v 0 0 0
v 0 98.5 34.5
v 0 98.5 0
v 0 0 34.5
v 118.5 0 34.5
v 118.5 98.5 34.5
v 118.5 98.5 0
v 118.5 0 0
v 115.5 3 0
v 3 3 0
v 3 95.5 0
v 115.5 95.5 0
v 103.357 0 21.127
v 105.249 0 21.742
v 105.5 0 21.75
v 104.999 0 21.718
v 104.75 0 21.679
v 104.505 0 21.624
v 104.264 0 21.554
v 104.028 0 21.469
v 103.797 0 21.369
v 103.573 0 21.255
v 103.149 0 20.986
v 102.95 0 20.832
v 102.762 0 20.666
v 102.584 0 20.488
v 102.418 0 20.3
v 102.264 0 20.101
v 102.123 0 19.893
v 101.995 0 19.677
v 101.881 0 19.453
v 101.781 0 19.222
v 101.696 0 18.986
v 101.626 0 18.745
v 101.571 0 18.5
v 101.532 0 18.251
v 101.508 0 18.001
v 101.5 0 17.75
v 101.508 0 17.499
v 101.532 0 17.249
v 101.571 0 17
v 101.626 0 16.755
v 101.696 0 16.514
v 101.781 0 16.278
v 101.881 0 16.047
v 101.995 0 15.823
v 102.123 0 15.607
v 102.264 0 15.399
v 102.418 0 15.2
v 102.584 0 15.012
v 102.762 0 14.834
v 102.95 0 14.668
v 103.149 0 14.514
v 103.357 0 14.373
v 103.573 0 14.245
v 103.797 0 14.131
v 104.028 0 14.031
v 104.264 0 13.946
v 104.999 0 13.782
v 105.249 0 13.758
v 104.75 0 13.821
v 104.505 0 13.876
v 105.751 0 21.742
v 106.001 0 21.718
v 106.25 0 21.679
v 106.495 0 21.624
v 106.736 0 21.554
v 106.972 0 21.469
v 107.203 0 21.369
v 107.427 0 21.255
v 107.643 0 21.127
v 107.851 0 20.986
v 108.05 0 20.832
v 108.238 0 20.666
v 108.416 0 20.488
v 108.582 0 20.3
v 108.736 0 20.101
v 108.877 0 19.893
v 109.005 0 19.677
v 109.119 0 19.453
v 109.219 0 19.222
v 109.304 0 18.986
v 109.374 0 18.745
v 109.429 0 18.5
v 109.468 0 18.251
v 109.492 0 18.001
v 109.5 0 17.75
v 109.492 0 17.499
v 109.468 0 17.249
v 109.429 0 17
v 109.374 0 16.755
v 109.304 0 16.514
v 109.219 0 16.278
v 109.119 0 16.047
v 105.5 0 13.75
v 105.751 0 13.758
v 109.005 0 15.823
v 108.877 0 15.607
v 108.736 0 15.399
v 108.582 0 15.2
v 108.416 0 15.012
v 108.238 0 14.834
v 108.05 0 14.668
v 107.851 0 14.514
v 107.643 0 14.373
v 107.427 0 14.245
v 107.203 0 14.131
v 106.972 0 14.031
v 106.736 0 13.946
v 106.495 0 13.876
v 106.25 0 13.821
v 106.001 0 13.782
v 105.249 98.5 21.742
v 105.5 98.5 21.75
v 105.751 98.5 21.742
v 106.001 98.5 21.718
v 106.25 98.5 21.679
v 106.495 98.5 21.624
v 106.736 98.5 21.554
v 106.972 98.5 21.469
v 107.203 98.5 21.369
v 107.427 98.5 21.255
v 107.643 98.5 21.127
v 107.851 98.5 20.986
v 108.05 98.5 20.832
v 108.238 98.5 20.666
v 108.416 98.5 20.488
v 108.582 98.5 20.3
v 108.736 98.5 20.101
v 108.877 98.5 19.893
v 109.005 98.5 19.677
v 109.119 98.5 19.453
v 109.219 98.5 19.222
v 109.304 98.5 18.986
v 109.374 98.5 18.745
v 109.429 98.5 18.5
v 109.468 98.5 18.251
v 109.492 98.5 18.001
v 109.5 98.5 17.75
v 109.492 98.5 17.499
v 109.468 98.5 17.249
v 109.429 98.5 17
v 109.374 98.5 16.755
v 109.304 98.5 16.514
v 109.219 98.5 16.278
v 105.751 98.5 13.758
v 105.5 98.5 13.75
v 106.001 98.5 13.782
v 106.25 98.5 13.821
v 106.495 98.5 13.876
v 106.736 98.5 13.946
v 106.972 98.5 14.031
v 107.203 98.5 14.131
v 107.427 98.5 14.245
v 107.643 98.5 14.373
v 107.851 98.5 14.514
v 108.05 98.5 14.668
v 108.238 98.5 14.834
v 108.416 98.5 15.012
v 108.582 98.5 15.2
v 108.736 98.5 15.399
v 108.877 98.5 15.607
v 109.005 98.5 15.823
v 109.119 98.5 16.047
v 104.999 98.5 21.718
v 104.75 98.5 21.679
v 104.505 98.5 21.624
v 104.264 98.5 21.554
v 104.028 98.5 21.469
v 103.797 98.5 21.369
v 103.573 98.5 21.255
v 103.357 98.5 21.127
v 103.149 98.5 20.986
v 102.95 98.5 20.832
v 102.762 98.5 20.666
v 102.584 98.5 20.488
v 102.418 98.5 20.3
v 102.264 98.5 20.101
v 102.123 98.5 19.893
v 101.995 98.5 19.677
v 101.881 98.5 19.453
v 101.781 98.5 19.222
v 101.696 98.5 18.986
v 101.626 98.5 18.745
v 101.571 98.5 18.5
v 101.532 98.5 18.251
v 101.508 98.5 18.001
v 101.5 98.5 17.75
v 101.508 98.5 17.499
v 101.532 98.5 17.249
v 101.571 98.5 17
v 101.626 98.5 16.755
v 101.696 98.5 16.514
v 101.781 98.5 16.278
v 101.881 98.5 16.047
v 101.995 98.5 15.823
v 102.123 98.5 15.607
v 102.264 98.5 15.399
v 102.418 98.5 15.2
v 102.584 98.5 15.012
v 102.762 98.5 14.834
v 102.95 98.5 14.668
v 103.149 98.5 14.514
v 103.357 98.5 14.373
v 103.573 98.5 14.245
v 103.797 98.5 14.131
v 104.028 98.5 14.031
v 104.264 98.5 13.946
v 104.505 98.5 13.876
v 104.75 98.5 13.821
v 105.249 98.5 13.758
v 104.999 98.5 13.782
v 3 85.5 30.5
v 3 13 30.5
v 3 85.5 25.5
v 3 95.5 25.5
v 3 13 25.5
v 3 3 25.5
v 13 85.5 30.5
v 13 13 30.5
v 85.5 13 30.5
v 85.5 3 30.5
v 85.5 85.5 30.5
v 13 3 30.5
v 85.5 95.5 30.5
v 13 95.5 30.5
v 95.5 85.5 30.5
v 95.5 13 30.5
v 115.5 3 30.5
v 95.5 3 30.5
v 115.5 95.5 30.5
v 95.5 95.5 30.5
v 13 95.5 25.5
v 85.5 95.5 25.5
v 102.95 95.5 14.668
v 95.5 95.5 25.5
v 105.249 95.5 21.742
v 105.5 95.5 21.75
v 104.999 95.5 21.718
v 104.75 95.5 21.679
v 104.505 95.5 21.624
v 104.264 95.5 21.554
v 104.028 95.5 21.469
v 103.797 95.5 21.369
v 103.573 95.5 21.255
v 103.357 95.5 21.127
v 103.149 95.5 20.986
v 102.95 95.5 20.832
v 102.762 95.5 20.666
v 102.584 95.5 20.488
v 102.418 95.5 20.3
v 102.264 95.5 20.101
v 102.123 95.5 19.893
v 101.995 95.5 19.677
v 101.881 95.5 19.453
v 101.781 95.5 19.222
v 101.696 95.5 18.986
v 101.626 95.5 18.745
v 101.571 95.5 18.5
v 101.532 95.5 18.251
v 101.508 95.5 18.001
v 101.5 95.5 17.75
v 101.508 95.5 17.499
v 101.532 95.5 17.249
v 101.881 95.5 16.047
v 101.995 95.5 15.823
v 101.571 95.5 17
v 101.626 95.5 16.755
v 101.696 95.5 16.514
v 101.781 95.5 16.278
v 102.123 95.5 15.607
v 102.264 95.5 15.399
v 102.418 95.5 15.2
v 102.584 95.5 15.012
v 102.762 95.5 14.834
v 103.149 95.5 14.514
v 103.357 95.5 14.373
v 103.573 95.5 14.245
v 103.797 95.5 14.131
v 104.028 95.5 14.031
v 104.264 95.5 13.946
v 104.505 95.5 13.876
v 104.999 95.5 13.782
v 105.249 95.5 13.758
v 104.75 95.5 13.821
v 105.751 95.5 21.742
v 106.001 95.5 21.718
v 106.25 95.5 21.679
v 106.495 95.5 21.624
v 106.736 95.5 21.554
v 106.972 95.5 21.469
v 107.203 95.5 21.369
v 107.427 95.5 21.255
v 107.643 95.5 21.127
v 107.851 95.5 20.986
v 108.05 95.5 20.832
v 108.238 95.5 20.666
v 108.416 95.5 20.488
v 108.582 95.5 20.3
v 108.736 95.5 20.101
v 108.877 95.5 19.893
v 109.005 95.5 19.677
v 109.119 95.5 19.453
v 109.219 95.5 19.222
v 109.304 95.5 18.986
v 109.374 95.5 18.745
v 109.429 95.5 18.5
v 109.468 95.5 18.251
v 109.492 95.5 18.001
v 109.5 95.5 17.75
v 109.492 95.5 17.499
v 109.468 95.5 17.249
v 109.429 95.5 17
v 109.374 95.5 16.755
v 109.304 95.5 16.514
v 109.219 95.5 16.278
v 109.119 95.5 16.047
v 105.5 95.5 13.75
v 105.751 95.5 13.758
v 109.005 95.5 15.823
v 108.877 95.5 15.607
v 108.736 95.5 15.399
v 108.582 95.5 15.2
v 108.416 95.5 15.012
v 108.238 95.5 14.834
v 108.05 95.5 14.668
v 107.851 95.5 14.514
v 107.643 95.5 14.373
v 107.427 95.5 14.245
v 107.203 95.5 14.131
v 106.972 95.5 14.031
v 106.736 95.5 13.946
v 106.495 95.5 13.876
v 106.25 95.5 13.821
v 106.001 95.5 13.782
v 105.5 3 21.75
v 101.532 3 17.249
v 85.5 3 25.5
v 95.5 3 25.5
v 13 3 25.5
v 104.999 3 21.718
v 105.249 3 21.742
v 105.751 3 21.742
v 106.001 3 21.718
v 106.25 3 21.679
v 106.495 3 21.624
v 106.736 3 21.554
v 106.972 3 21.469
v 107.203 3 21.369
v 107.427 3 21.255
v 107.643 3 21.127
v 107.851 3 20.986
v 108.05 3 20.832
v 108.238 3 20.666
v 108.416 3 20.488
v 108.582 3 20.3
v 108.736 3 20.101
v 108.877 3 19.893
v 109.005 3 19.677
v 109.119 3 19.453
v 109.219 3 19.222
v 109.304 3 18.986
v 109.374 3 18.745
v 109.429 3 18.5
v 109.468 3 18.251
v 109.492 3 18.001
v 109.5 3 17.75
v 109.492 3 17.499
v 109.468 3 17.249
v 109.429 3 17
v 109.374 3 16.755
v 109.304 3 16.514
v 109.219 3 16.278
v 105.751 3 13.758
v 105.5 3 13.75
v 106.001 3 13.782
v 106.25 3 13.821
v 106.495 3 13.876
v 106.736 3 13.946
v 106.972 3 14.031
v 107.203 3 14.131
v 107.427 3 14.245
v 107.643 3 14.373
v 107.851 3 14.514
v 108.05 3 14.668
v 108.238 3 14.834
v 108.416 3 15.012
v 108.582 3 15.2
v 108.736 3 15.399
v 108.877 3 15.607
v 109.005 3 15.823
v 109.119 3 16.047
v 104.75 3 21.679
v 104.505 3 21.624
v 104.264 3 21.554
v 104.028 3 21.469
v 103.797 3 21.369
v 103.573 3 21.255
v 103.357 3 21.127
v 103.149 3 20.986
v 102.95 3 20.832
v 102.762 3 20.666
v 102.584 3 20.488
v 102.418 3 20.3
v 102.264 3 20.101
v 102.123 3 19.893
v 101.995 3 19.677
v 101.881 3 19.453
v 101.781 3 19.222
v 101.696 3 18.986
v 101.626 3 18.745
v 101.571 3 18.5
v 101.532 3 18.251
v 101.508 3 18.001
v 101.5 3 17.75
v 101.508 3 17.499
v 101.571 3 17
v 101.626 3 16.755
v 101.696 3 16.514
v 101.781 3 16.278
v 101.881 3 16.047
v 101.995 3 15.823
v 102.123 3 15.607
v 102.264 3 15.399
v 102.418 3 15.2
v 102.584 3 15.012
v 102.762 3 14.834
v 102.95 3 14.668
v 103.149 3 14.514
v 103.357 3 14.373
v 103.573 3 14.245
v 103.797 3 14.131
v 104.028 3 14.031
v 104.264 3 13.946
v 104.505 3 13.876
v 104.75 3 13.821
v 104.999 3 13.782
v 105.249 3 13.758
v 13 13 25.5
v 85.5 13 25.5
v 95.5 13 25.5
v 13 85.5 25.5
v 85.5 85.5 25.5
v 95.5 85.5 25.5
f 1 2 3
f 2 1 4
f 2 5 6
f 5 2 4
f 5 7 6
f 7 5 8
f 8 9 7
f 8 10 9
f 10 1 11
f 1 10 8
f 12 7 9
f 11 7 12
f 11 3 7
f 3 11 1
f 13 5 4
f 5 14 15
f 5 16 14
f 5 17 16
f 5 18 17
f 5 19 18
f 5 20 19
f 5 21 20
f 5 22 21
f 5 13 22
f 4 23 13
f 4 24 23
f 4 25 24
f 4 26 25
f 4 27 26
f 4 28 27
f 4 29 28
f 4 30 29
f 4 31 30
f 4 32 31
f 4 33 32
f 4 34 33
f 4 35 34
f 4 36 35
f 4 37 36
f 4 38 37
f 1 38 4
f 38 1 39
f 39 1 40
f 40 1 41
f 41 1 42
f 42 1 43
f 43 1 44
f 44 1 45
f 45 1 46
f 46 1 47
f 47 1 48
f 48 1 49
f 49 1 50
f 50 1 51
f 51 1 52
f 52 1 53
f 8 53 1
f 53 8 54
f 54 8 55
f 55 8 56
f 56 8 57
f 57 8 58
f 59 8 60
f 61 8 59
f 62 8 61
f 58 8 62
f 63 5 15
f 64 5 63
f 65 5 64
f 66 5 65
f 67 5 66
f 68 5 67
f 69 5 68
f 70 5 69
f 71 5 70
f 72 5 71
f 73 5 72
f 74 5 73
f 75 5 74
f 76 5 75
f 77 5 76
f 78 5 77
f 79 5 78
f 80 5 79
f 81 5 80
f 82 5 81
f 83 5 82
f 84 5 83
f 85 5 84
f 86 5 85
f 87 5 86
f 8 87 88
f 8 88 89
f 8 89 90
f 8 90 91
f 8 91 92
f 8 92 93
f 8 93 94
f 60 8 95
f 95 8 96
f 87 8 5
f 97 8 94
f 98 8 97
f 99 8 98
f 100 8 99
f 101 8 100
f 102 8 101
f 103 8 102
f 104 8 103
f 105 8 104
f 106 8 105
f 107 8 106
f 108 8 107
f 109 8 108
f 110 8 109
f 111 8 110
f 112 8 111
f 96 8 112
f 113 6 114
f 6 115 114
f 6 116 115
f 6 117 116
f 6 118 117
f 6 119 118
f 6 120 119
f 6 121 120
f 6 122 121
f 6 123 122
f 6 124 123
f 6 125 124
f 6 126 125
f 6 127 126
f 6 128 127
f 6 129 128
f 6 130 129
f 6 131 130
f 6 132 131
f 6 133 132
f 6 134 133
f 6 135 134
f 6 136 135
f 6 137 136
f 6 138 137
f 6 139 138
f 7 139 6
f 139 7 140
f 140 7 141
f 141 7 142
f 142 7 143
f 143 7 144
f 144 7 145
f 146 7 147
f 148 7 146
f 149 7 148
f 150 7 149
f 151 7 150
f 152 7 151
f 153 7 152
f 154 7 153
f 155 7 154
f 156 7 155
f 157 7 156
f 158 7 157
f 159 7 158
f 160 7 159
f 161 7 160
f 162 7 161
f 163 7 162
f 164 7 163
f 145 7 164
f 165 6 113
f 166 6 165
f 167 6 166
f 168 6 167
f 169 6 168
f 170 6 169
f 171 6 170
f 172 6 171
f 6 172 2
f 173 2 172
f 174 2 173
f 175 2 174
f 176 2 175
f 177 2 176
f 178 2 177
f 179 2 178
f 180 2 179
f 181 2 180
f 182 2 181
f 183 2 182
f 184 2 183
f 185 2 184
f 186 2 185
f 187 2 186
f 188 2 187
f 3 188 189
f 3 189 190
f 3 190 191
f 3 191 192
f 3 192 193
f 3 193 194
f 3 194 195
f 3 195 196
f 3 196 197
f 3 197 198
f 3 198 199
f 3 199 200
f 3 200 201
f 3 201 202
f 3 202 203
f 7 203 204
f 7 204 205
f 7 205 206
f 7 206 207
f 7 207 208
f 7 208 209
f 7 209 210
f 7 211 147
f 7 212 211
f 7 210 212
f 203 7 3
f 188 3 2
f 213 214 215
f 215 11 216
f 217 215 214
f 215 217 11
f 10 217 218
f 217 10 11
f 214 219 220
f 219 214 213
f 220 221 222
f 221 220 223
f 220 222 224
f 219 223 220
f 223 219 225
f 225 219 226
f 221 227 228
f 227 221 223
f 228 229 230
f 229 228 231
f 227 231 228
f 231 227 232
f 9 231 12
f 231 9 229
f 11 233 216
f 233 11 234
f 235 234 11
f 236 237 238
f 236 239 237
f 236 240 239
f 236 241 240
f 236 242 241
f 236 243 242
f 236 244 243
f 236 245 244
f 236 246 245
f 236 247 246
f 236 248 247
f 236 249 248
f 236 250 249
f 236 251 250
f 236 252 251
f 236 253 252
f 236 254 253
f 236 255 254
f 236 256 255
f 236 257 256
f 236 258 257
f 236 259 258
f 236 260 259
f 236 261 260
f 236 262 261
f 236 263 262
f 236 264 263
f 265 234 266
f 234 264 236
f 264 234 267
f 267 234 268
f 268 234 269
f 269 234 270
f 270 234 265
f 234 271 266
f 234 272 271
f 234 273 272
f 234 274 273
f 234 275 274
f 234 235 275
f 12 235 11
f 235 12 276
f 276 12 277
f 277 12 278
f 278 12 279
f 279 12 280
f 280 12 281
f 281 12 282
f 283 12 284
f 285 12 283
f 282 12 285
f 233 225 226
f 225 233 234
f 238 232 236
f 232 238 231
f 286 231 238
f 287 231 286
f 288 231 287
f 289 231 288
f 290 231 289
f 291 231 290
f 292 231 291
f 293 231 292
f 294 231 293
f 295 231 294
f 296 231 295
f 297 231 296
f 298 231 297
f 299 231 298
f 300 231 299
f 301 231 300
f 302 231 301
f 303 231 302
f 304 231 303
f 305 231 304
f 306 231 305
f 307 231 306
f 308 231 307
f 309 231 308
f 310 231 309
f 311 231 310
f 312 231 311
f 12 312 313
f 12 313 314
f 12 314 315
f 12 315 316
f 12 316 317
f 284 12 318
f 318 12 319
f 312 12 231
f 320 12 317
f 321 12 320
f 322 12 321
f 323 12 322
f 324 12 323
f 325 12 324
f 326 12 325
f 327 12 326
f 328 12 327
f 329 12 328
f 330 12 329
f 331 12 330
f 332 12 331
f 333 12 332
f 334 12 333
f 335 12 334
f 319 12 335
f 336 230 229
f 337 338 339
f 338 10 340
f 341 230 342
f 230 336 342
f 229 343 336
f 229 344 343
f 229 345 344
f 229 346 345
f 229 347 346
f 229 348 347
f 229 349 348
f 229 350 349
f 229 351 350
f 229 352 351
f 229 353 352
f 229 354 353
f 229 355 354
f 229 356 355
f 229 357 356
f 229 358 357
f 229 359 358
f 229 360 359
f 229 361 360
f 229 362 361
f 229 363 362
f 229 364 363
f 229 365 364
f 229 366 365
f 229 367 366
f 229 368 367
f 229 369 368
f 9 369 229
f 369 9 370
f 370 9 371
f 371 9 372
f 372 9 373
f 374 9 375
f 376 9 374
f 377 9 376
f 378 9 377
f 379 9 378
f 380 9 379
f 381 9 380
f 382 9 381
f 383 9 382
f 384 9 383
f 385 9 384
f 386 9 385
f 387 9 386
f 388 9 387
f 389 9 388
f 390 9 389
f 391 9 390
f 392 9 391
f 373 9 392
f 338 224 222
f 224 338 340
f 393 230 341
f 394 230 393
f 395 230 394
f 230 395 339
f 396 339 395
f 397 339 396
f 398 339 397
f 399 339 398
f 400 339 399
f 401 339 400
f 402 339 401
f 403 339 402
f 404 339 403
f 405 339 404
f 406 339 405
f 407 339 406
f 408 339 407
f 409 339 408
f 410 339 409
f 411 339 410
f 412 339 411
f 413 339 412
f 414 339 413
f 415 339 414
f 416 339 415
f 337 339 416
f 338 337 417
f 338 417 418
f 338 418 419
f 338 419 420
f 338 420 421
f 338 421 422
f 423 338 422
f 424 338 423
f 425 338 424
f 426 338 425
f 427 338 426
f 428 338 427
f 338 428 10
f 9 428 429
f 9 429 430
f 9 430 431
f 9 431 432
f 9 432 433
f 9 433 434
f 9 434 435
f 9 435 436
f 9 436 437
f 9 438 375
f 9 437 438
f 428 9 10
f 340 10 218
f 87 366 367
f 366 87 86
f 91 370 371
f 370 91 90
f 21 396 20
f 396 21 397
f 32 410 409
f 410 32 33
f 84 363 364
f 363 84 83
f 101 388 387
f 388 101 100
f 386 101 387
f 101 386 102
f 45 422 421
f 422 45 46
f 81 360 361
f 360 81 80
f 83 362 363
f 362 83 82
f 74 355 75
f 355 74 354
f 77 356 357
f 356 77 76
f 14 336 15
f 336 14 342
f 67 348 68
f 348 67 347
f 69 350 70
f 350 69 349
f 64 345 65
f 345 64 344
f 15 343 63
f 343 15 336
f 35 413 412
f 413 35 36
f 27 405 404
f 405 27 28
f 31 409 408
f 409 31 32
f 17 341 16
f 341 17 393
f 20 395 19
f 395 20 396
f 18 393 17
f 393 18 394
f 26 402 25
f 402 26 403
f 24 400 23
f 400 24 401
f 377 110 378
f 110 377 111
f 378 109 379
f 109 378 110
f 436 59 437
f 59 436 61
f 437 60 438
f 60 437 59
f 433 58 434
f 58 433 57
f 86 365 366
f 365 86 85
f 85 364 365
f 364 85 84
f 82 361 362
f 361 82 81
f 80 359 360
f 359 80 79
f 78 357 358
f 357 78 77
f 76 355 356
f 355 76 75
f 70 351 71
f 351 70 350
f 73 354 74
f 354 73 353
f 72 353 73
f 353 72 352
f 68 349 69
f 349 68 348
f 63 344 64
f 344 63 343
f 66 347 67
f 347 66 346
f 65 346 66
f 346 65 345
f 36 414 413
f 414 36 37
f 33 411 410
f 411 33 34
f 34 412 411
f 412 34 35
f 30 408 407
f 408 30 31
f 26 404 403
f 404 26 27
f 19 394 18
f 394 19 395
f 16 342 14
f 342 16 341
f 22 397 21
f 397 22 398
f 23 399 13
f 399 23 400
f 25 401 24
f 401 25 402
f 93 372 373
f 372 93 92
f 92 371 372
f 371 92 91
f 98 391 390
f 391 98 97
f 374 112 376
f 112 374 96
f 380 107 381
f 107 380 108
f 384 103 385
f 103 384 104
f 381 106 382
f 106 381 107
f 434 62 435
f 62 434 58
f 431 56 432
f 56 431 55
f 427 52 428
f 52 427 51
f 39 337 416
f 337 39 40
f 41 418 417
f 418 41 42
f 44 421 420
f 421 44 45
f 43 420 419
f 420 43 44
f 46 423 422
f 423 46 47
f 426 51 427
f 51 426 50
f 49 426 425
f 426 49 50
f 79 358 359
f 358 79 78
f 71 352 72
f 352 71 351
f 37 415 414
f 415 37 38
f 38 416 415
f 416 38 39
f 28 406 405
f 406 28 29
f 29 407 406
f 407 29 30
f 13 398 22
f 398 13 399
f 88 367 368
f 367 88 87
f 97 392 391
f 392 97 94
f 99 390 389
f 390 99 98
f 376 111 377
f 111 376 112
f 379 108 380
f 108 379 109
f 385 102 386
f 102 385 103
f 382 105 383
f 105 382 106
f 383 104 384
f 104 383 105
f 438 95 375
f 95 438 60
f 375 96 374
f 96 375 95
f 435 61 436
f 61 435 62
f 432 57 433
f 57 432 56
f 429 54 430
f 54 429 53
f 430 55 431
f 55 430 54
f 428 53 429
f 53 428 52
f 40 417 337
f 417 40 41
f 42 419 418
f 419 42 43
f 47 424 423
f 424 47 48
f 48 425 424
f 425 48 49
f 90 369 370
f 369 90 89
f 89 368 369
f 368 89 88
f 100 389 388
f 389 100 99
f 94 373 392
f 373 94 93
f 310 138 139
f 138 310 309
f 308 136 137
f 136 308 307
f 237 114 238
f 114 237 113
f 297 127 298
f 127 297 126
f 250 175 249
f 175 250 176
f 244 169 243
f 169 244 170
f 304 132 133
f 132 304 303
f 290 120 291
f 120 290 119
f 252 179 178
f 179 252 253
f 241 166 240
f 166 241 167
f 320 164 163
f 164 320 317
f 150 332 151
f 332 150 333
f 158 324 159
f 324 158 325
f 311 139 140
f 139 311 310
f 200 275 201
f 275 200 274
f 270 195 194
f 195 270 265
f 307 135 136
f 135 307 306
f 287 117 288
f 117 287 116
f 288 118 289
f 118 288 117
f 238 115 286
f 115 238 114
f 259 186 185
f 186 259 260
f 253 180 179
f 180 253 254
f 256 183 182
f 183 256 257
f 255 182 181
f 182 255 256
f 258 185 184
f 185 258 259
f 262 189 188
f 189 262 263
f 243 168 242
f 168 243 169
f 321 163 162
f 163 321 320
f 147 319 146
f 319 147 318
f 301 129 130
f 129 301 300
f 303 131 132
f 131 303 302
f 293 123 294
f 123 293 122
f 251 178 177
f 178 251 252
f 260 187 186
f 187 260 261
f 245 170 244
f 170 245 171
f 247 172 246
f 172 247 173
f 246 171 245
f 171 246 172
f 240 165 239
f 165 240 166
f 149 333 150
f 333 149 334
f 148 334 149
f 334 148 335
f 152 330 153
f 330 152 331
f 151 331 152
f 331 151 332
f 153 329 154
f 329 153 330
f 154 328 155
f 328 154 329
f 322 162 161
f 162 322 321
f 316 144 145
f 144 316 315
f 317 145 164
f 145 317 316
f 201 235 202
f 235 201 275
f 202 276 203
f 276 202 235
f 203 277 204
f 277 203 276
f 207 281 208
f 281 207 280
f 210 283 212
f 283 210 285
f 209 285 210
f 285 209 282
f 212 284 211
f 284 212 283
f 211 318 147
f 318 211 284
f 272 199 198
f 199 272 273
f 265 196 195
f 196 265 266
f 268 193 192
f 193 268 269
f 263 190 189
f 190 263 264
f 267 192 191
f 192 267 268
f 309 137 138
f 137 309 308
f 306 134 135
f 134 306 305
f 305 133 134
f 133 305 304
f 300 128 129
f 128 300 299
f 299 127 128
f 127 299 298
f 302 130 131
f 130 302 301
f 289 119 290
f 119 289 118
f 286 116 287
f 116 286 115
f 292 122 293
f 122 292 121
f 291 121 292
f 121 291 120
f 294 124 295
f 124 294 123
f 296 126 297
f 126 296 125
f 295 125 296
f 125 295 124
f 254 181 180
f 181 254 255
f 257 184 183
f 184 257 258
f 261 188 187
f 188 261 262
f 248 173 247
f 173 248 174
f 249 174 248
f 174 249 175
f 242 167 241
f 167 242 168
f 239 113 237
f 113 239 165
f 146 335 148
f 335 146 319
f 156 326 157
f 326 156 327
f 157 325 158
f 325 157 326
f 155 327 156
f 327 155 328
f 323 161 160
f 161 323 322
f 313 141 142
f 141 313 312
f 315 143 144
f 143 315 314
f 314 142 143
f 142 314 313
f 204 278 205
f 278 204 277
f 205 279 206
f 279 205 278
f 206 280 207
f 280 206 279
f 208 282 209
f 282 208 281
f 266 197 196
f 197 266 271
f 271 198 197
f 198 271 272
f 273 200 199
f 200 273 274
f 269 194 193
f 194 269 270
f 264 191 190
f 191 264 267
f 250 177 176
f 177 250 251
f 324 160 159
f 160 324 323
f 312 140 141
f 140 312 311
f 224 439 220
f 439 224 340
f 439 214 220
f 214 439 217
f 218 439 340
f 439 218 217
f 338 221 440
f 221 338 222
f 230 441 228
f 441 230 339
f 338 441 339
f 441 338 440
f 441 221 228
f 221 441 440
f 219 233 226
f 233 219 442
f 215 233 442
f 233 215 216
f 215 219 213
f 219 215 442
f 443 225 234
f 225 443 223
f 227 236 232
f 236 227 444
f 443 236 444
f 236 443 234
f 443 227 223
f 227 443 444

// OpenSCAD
// Andre Betz
// github@AndreBetz.de
// Magnetic stirrer case
// Zwieselbrau.de

WandD           =  3;
LuefterH        = 25.5;
LuefterB        = 92.5;
LuefterT        = 92.5;
MagnetH         =  6;
PotiB           = 20;
DistHolderBT    = 10;
ConnDC_D1       =  8;
ConnDC_D2       = 13;
ConnP_D1        =  8;
ConnP_D2        = 13;

$fn=100;

difference() {
    cube([  LuefterB+PotiB+2*WandD,
            LuefterT+2*WandD,
            LuefterH+MagnetH+WandD ],
            center = false);
    translate([WandD,WandD,-1])
        cube([  LuefterB+PotiB,
                LuefterT,
                LuefterH+MagnetH],
                center = false);
    translate([LuefterB+WandD+PotiB/2,WandD+1,(LuefterH+DistHolderBT)/2])
        rotate(a=[90,0,0])
            cylinder(h=WandD+2,r=ConnP_D1/2,center=false);
    translate([LuefterB+WandD+PotiB/2,LuefterT+WandD*2+1,(LuefterH+DistHolderBT)/2])
        rotate(a=[90,0,0])
            cylinder(h=WandD+2,r=ConnDC_D1/2,center=false);
}
translate([WandD,WandD,LuefterH])
    cube([  DistHolderBT,
            DistHolderBT,
            MagnetH ],
            center = false);
translate([LuefterB+WandD-DistHolderBT,WandD,LuefterH])
    cube([  DistHolderBT,
            DistHolderBT,
            MagnetH ],
            center = false);

translate([WandD,LuefterT+WandD-DistHolderBT,LuefterH])
    cube([  DistHolderBT,
            DistHolderBT,
            MagnetH ],
            center = false);
translate([LuefterB+WandD-DistHolderBT,LuefterT+WandD-DistHolderBT,LuefterH])
    cube([  DistHolderBT,
            DistHolderBT,
            MagnetH ],
            center = false);
